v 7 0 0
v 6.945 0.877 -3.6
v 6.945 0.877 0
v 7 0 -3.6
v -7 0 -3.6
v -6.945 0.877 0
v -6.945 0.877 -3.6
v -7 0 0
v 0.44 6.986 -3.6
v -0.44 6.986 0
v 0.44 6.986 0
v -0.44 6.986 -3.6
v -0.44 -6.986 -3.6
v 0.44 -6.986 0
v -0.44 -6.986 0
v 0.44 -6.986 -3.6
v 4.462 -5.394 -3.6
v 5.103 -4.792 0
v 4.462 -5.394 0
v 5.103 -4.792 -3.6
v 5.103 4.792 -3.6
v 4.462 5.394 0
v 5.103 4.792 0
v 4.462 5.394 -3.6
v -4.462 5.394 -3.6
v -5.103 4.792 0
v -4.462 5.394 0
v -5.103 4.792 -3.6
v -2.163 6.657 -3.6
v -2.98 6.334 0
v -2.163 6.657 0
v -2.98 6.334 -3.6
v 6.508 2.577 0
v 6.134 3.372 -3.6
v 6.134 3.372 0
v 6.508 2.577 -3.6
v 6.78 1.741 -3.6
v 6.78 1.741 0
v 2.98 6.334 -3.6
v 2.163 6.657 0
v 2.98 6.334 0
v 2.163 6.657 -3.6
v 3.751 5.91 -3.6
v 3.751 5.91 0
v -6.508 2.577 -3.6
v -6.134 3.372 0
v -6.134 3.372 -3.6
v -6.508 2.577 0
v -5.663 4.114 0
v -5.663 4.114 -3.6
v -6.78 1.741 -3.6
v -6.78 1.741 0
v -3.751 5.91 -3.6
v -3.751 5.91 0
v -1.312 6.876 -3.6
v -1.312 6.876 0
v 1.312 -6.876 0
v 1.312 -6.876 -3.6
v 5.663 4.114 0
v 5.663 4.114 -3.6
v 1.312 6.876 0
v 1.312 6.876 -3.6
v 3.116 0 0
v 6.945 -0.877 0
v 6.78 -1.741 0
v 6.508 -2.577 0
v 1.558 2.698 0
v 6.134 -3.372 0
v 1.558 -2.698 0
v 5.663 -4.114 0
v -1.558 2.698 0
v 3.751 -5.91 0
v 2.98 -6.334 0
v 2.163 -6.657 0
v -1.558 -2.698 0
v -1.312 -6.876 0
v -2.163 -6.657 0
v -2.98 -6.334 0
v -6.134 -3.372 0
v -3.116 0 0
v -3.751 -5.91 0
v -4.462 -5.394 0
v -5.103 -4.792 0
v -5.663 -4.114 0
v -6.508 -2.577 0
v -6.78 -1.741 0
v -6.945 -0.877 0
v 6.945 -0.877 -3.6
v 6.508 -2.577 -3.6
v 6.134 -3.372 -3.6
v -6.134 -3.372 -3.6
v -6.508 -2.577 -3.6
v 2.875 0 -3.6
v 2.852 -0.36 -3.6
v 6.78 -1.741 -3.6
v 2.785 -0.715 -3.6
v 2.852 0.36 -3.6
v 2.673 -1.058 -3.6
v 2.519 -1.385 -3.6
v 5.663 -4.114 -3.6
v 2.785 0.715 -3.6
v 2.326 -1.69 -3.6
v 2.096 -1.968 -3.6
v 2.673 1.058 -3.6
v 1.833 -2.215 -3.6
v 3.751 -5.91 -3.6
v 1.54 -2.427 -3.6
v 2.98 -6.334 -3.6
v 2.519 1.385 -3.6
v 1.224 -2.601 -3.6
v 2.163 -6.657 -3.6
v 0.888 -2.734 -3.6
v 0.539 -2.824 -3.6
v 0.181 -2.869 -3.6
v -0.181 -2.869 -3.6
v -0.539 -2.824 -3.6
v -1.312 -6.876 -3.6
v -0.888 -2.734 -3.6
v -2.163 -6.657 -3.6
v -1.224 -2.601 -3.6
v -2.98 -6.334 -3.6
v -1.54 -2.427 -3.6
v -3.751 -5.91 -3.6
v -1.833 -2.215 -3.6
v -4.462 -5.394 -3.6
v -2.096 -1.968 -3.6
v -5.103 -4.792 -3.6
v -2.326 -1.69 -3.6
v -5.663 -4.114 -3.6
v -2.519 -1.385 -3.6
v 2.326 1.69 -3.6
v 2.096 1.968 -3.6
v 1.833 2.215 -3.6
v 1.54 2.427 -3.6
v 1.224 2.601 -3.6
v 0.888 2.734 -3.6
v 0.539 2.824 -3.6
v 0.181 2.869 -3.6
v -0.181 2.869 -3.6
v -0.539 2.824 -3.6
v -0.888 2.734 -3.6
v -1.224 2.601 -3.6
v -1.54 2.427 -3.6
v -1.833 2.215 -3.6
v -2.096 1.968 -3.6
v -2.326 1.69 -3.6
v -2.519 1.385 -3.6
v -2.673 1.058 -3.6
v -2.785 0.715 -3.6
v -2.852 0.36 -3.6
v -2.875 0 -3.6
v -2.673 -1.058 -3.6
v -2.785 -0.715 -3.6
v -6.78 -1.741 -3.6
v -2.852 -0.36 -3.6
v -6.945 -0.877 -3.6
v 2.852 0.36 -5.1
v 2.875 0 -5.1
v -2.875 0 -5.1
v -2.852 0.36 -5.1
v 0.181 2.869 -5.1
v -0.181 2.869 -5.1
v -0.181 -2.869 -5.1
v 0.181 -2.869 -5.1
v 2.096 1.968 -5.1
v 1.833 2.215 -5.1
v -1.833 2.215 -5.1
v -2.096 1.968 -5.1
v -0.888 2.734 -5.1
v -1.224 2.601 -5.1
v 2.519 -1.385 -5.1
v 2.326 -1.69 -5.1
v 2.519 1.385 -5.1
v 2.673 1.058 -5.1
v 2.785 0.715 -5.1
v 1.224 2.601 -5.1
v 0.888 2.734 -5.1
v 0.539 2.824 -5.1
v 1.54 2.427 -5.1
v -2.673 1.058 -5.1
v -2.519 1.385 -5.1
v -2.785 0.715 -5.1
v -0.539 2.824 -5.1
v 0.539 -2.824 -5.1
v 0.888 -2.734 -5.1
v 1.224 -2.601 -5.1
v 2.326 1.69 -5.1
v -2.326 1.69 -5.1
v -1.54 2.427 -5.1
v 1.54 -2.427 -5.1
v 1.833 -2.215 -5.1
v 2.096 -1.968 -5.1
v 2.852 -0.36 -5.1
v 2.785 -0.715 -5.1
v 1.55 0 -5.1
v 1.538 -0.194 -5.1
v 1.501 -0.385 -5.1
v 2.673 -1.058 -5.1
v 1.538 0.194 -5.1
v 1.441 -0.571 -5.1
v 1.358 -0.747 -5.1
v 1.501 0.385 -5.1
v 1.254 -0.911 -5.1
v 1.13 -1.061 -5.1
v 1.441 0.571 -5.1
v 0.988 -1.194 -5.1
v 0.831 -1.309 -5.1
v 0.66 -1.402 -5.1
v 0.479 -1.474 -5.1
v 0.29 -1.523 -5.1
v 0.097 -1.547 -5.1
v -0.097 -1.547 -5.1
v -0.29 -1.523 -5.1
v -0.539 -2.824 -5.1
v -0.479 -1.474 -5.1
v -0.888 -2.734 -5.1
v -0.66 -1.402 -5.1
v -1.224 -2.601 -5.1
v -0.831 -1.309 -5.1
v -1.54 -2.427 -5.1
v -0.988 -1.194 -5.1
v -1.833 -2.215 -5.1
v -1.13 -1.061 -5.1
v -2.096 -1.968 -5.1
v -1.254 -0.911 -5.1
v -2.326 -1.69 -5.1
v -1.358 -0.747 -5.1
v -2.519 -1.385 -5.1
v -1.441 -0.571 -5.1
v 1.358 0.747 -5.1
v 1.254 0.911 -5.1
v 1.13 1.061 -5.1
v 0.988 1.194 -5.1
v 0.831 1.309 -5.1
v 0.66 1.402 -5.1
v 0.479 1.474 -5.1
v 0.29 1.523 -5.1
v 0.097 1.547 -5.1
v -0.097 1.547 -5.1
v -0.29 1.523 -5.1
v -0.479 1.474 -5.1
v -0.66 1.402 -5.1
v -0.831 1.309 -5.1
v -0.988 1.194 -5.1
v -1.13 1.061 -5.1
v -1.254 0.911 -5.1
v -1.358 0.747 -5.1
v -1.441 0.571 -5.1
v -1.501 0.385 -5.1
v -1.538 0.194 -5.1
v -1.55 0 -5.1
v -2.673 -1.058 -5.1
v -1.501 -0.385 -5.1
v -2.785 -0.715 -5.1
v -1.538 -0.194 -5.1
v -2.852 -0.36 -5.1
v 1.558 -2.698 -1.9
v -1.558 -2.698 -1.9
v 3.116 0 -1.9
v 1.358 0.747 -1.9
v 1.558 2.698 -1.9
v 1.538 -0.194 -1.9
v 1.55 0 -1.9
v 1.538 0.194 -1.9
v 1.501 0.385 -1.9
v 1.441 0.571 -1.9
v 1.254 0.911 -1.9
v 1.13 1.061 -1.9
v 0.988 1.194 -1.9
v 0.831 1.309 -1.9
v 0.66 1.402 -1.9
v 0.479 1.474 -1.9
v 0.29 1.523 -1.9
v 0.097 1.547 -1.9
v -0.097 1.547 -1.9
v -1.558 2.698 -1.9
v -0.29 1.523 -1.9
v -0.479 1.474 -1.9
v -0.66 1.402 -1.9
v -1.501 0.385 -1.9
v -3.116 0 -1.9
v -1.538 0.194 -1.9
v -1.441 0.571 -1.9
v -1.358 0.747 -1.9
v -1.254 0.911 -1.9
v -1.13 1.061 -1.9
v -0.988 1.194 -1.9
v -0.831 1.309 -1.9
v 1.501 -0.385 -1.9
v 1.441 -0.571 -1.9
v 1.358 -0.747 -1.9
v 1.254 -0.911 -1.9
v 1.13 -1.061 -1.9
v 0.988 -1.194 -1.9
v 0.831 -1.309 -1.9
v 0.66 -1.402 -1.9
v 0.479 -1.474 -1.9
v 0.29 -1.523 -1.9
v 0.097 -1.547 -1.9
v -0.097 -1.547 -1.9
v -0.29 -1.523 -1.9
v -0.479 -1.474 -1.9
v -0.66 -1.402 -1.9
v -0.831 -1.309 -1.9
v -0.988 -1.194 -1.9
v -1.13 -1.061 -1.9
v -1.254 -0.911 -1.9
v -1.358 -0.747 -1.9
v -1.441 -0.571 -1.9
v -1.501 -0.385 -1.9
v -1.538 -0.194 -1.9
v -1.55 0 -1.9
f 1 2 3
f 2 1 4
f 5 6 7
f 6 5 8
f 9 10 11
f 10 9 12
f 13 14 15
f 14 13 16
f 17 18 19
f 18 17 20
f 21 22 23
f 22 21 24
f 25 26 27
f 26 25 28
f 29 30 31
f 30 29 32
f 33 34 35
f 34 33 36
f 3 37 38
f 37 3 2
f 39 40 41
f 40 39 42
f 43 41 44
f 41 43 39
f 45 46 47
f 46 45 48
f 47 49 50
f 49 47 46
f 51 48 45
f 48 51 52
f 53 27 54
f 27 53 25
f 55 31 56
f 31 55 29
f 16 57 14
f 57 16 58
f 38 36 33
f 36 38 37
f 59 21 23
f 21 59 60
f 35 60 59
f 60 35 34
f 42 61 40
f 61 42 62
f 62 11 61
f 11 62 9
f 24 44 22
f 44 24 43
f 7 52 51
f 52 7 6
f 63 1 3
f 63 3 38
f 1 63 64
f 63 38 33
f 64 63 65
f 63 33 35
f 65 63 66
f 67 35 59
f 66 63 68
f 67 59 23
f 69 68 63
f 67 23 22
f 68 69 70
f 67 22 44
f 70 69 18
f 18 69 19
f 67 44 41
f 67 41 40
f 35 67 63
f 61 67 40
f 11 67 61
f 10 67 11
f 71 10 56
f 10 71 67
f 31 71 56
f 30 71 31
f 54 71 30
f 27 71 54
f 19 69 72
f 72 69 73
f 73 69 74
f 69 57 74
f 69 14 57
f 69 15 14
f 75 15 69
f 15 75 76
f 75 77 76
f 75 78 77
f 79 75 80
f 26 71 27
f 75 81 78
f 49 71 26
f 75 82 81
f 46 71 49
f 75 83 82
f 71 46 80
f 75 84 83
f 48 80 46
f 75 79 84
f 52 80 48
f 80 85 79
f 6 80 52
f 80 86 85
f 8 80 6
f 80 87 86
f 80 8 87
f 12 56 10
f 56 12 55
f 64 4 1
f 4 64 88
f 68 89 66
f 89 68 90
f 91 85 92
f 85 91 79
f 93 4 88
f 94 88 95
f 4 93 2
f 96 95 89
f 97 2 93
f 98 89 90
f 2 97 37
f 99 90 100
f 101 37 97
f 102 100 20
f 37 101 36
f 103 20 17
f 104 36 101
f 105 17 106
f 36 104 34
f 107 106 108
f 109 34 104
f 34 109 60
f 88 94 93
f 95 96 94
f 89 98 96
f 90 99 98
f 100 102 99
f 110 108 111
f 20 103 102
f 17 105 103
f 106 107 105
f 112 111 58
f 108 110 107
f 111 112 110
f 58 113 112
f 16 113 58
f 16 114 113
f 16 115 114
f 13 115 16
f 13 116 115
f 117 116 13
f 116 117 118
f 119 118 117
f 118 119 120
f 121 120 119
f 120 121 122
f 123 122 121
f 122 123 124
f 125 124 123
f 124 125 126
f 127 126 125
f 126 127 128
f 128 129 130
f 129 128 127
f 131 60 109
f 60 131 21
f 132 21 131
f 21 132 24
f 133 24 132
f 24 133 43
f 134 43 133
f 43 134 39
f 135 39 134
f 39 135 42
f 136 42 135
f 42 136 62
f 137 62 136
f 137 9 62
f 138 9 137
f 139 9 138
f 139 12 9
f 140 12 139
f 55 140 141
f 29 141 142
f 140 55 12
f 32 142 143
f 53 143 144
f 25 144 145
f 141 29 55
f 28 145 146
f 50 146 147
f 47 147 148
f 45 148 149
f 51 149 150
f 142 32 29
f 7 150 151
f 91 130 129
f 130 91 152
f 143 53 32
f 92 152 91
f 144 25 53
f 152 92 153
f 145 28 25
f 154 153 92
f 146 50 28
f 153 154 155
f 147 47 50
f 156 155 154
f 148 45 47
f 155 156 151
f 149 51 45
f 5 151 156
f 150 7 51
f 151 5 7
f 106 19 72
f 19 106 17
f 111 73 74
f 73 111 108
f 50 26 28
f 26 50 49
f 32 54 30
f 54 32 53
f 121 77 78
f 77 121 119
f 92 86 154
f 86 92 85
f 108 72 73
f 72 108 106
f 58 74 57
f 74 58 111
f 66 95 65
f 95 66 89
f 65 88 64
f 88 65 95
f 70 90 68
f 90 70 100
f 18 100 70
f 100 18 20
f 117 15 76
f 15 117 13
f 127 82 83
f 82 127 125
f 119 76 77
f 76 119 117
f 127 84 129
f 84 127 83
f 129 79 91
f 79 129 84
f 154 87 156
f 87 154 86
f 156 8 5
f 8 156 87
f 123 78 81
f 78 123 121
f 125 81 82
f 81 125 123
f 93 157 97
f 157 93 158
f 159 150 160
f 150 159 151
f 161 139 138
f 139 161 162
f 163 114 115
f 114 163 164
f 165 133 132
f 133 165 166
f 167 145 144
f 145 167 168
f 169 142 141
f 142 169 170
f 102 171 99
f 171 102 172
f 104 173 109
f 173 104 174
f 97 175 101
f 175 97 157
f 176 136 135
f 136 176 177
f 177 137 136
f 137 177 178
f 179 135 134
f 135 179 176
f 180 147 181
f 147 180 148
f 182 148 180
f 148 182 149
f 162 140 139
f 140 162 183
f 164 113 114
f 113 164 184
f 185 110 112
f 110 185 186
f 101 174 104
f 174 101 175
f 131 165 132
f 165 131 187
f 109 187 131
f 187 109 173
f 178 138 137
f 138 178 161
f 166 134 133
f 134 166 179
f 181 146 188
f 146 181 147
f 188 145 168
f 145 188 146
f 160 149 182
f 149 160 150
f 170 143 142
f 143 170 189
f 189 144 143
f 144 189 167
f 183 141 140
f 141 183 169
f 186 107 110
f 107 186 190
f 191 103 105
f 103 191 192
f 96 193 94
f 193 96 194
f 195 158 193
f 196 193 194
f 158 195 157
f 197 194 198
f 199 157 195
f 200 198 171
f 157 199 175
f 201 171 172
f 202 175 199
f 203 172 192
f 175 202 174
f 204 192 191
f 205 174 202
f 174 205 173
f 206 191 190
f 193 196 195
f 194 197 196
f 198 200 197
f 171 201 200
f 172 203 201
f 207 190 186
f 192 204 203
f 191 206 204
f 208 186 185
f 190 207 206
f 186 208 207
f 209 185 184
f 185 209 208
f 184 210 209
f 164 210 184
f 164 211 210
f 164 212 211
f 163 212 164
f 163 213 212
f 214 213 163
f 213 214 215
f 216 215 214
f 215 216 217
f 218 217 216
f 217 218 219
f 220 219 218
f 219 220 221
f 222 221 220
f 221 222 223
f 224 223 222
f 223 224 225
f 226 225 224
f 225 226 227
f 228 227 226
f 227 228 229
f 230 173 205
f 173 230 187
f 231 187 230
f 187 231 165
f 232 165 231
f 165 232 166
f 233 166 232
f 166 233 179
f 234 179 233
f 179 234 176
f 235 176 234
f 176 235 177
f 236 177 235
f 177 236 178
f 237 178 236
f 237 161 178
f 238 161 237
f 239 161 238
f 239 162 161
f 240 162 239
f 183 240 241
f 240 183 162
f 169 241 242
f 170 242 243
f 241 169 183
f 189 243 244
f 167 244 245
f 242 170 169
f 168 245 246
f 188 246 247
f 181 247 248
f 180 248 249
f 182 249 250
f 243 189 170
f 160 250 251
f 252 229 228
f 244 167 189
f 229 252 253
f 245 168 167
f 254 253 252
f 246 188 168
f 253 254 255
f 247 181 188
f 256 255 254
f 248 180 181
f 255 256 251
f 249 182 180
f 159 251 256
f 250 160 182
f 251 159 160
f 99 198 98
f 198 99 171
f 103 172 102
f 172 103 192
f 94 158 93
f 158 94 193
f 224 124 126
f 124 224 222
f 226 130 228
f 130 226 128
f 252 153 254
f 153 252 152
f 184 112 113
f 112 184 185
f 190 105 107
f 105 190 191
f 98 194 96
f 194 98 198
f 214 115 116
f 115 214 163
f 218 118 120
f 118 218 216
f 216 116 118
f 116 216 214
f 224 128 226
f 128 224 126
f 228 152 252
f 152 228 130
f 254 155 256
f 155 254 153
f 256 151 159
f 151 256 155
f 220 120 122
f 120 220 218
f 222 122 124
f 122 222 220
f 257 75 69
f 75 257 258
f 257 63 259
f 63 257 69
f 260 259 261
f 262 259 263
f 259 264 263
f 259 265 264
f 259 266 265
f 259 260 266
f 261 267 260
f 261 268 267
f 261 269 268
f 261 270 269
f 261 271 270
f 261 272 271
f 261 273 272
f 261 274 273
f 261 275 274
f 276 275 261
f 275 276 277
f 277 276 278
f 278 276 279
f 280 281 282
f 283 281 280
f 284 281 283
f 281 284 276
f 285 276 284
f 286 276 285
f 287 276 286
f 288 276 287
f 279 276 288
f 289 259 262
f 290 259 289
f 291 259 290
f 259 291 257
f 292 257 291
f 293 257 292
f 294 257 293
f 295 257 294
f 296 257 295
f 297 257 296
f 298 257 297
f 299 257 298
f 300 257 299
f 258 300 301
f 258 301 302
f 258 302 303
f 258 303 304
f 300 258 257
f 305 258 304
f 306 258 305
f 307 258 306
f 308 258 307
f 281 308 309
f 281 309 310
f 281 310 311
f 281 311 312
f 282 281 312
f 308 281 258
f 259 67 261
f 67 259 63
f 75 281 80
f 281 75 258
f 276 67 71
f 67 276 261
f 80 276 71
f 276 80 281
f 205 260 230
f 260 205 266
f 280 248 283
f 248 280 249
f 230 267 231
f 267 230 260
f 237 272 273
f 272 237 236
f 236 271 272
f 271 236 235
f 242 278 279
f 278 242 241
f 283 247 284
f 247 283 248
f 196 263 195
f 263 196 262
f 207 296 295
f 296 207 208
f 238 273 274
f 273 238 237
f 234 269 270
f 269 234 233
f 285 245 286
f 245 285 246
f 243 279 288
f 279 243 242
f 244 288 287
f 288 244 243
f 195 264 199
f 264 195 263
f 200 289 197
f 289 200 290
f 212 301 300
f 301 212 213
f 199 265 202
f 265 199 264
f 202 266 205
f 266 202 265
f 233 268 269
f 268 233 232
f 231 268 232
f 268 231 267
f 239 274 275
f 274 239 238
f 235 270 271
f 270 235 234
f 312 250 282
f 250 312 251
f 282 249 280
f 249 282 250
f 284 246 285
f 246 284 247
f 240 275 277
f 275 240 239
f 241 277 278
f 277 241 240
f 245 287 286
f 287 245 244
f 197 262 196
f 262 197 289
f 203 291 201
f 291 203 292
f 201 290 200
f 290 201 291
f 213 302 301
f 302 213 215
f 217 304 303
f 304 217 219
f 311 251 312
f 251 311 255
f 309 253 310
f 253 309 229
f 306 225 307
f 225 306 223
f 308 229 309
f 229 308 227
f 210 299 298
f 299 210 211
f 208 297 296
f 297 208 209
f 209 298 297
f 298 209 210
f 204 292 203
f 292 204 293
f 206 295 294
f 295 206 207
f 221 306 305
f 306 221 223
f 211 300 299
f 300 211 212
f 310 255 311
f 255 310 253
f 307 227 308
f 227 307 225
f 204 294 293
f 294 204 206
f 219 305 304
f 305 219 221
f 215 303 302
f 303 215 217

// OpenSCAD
$fn = 50;

difference() {
	union() {
		translate(v = [0, 0, -3.6]) {
			cylinder(h = 3.6, r = 7.0);
		}
		#translate(v = [0, 0, -5.1]) {
			cylinder(h = 5.1, r = 2.875);
		}
	}
	union() {
		translate(v = [0, 0, 0]) {
			rotate(a = [0, 0, 0]) {
				difference() {
					union() {
						translate(v = [0, 0, -1.9]) {
							linear_extrude(height = 1.9) {
								polygon(points = [[3.1158, 0.0], [1.5579000000000005, 2.698361953111554], [-1.5578999999999994, 2.6983619531115544], [-3.1158, 3.815754496783323e-16], [-1.5579000000000014, -2.6983619531115535], [1.557899999999998, -2.6983619531115552]]);
							}
						}
					}
					union();
				}
			}
		}
		#translate(v = [0, 0, -100.0]) {
			cylinder(h = 200, r = 1.55);
		}
	}
}
